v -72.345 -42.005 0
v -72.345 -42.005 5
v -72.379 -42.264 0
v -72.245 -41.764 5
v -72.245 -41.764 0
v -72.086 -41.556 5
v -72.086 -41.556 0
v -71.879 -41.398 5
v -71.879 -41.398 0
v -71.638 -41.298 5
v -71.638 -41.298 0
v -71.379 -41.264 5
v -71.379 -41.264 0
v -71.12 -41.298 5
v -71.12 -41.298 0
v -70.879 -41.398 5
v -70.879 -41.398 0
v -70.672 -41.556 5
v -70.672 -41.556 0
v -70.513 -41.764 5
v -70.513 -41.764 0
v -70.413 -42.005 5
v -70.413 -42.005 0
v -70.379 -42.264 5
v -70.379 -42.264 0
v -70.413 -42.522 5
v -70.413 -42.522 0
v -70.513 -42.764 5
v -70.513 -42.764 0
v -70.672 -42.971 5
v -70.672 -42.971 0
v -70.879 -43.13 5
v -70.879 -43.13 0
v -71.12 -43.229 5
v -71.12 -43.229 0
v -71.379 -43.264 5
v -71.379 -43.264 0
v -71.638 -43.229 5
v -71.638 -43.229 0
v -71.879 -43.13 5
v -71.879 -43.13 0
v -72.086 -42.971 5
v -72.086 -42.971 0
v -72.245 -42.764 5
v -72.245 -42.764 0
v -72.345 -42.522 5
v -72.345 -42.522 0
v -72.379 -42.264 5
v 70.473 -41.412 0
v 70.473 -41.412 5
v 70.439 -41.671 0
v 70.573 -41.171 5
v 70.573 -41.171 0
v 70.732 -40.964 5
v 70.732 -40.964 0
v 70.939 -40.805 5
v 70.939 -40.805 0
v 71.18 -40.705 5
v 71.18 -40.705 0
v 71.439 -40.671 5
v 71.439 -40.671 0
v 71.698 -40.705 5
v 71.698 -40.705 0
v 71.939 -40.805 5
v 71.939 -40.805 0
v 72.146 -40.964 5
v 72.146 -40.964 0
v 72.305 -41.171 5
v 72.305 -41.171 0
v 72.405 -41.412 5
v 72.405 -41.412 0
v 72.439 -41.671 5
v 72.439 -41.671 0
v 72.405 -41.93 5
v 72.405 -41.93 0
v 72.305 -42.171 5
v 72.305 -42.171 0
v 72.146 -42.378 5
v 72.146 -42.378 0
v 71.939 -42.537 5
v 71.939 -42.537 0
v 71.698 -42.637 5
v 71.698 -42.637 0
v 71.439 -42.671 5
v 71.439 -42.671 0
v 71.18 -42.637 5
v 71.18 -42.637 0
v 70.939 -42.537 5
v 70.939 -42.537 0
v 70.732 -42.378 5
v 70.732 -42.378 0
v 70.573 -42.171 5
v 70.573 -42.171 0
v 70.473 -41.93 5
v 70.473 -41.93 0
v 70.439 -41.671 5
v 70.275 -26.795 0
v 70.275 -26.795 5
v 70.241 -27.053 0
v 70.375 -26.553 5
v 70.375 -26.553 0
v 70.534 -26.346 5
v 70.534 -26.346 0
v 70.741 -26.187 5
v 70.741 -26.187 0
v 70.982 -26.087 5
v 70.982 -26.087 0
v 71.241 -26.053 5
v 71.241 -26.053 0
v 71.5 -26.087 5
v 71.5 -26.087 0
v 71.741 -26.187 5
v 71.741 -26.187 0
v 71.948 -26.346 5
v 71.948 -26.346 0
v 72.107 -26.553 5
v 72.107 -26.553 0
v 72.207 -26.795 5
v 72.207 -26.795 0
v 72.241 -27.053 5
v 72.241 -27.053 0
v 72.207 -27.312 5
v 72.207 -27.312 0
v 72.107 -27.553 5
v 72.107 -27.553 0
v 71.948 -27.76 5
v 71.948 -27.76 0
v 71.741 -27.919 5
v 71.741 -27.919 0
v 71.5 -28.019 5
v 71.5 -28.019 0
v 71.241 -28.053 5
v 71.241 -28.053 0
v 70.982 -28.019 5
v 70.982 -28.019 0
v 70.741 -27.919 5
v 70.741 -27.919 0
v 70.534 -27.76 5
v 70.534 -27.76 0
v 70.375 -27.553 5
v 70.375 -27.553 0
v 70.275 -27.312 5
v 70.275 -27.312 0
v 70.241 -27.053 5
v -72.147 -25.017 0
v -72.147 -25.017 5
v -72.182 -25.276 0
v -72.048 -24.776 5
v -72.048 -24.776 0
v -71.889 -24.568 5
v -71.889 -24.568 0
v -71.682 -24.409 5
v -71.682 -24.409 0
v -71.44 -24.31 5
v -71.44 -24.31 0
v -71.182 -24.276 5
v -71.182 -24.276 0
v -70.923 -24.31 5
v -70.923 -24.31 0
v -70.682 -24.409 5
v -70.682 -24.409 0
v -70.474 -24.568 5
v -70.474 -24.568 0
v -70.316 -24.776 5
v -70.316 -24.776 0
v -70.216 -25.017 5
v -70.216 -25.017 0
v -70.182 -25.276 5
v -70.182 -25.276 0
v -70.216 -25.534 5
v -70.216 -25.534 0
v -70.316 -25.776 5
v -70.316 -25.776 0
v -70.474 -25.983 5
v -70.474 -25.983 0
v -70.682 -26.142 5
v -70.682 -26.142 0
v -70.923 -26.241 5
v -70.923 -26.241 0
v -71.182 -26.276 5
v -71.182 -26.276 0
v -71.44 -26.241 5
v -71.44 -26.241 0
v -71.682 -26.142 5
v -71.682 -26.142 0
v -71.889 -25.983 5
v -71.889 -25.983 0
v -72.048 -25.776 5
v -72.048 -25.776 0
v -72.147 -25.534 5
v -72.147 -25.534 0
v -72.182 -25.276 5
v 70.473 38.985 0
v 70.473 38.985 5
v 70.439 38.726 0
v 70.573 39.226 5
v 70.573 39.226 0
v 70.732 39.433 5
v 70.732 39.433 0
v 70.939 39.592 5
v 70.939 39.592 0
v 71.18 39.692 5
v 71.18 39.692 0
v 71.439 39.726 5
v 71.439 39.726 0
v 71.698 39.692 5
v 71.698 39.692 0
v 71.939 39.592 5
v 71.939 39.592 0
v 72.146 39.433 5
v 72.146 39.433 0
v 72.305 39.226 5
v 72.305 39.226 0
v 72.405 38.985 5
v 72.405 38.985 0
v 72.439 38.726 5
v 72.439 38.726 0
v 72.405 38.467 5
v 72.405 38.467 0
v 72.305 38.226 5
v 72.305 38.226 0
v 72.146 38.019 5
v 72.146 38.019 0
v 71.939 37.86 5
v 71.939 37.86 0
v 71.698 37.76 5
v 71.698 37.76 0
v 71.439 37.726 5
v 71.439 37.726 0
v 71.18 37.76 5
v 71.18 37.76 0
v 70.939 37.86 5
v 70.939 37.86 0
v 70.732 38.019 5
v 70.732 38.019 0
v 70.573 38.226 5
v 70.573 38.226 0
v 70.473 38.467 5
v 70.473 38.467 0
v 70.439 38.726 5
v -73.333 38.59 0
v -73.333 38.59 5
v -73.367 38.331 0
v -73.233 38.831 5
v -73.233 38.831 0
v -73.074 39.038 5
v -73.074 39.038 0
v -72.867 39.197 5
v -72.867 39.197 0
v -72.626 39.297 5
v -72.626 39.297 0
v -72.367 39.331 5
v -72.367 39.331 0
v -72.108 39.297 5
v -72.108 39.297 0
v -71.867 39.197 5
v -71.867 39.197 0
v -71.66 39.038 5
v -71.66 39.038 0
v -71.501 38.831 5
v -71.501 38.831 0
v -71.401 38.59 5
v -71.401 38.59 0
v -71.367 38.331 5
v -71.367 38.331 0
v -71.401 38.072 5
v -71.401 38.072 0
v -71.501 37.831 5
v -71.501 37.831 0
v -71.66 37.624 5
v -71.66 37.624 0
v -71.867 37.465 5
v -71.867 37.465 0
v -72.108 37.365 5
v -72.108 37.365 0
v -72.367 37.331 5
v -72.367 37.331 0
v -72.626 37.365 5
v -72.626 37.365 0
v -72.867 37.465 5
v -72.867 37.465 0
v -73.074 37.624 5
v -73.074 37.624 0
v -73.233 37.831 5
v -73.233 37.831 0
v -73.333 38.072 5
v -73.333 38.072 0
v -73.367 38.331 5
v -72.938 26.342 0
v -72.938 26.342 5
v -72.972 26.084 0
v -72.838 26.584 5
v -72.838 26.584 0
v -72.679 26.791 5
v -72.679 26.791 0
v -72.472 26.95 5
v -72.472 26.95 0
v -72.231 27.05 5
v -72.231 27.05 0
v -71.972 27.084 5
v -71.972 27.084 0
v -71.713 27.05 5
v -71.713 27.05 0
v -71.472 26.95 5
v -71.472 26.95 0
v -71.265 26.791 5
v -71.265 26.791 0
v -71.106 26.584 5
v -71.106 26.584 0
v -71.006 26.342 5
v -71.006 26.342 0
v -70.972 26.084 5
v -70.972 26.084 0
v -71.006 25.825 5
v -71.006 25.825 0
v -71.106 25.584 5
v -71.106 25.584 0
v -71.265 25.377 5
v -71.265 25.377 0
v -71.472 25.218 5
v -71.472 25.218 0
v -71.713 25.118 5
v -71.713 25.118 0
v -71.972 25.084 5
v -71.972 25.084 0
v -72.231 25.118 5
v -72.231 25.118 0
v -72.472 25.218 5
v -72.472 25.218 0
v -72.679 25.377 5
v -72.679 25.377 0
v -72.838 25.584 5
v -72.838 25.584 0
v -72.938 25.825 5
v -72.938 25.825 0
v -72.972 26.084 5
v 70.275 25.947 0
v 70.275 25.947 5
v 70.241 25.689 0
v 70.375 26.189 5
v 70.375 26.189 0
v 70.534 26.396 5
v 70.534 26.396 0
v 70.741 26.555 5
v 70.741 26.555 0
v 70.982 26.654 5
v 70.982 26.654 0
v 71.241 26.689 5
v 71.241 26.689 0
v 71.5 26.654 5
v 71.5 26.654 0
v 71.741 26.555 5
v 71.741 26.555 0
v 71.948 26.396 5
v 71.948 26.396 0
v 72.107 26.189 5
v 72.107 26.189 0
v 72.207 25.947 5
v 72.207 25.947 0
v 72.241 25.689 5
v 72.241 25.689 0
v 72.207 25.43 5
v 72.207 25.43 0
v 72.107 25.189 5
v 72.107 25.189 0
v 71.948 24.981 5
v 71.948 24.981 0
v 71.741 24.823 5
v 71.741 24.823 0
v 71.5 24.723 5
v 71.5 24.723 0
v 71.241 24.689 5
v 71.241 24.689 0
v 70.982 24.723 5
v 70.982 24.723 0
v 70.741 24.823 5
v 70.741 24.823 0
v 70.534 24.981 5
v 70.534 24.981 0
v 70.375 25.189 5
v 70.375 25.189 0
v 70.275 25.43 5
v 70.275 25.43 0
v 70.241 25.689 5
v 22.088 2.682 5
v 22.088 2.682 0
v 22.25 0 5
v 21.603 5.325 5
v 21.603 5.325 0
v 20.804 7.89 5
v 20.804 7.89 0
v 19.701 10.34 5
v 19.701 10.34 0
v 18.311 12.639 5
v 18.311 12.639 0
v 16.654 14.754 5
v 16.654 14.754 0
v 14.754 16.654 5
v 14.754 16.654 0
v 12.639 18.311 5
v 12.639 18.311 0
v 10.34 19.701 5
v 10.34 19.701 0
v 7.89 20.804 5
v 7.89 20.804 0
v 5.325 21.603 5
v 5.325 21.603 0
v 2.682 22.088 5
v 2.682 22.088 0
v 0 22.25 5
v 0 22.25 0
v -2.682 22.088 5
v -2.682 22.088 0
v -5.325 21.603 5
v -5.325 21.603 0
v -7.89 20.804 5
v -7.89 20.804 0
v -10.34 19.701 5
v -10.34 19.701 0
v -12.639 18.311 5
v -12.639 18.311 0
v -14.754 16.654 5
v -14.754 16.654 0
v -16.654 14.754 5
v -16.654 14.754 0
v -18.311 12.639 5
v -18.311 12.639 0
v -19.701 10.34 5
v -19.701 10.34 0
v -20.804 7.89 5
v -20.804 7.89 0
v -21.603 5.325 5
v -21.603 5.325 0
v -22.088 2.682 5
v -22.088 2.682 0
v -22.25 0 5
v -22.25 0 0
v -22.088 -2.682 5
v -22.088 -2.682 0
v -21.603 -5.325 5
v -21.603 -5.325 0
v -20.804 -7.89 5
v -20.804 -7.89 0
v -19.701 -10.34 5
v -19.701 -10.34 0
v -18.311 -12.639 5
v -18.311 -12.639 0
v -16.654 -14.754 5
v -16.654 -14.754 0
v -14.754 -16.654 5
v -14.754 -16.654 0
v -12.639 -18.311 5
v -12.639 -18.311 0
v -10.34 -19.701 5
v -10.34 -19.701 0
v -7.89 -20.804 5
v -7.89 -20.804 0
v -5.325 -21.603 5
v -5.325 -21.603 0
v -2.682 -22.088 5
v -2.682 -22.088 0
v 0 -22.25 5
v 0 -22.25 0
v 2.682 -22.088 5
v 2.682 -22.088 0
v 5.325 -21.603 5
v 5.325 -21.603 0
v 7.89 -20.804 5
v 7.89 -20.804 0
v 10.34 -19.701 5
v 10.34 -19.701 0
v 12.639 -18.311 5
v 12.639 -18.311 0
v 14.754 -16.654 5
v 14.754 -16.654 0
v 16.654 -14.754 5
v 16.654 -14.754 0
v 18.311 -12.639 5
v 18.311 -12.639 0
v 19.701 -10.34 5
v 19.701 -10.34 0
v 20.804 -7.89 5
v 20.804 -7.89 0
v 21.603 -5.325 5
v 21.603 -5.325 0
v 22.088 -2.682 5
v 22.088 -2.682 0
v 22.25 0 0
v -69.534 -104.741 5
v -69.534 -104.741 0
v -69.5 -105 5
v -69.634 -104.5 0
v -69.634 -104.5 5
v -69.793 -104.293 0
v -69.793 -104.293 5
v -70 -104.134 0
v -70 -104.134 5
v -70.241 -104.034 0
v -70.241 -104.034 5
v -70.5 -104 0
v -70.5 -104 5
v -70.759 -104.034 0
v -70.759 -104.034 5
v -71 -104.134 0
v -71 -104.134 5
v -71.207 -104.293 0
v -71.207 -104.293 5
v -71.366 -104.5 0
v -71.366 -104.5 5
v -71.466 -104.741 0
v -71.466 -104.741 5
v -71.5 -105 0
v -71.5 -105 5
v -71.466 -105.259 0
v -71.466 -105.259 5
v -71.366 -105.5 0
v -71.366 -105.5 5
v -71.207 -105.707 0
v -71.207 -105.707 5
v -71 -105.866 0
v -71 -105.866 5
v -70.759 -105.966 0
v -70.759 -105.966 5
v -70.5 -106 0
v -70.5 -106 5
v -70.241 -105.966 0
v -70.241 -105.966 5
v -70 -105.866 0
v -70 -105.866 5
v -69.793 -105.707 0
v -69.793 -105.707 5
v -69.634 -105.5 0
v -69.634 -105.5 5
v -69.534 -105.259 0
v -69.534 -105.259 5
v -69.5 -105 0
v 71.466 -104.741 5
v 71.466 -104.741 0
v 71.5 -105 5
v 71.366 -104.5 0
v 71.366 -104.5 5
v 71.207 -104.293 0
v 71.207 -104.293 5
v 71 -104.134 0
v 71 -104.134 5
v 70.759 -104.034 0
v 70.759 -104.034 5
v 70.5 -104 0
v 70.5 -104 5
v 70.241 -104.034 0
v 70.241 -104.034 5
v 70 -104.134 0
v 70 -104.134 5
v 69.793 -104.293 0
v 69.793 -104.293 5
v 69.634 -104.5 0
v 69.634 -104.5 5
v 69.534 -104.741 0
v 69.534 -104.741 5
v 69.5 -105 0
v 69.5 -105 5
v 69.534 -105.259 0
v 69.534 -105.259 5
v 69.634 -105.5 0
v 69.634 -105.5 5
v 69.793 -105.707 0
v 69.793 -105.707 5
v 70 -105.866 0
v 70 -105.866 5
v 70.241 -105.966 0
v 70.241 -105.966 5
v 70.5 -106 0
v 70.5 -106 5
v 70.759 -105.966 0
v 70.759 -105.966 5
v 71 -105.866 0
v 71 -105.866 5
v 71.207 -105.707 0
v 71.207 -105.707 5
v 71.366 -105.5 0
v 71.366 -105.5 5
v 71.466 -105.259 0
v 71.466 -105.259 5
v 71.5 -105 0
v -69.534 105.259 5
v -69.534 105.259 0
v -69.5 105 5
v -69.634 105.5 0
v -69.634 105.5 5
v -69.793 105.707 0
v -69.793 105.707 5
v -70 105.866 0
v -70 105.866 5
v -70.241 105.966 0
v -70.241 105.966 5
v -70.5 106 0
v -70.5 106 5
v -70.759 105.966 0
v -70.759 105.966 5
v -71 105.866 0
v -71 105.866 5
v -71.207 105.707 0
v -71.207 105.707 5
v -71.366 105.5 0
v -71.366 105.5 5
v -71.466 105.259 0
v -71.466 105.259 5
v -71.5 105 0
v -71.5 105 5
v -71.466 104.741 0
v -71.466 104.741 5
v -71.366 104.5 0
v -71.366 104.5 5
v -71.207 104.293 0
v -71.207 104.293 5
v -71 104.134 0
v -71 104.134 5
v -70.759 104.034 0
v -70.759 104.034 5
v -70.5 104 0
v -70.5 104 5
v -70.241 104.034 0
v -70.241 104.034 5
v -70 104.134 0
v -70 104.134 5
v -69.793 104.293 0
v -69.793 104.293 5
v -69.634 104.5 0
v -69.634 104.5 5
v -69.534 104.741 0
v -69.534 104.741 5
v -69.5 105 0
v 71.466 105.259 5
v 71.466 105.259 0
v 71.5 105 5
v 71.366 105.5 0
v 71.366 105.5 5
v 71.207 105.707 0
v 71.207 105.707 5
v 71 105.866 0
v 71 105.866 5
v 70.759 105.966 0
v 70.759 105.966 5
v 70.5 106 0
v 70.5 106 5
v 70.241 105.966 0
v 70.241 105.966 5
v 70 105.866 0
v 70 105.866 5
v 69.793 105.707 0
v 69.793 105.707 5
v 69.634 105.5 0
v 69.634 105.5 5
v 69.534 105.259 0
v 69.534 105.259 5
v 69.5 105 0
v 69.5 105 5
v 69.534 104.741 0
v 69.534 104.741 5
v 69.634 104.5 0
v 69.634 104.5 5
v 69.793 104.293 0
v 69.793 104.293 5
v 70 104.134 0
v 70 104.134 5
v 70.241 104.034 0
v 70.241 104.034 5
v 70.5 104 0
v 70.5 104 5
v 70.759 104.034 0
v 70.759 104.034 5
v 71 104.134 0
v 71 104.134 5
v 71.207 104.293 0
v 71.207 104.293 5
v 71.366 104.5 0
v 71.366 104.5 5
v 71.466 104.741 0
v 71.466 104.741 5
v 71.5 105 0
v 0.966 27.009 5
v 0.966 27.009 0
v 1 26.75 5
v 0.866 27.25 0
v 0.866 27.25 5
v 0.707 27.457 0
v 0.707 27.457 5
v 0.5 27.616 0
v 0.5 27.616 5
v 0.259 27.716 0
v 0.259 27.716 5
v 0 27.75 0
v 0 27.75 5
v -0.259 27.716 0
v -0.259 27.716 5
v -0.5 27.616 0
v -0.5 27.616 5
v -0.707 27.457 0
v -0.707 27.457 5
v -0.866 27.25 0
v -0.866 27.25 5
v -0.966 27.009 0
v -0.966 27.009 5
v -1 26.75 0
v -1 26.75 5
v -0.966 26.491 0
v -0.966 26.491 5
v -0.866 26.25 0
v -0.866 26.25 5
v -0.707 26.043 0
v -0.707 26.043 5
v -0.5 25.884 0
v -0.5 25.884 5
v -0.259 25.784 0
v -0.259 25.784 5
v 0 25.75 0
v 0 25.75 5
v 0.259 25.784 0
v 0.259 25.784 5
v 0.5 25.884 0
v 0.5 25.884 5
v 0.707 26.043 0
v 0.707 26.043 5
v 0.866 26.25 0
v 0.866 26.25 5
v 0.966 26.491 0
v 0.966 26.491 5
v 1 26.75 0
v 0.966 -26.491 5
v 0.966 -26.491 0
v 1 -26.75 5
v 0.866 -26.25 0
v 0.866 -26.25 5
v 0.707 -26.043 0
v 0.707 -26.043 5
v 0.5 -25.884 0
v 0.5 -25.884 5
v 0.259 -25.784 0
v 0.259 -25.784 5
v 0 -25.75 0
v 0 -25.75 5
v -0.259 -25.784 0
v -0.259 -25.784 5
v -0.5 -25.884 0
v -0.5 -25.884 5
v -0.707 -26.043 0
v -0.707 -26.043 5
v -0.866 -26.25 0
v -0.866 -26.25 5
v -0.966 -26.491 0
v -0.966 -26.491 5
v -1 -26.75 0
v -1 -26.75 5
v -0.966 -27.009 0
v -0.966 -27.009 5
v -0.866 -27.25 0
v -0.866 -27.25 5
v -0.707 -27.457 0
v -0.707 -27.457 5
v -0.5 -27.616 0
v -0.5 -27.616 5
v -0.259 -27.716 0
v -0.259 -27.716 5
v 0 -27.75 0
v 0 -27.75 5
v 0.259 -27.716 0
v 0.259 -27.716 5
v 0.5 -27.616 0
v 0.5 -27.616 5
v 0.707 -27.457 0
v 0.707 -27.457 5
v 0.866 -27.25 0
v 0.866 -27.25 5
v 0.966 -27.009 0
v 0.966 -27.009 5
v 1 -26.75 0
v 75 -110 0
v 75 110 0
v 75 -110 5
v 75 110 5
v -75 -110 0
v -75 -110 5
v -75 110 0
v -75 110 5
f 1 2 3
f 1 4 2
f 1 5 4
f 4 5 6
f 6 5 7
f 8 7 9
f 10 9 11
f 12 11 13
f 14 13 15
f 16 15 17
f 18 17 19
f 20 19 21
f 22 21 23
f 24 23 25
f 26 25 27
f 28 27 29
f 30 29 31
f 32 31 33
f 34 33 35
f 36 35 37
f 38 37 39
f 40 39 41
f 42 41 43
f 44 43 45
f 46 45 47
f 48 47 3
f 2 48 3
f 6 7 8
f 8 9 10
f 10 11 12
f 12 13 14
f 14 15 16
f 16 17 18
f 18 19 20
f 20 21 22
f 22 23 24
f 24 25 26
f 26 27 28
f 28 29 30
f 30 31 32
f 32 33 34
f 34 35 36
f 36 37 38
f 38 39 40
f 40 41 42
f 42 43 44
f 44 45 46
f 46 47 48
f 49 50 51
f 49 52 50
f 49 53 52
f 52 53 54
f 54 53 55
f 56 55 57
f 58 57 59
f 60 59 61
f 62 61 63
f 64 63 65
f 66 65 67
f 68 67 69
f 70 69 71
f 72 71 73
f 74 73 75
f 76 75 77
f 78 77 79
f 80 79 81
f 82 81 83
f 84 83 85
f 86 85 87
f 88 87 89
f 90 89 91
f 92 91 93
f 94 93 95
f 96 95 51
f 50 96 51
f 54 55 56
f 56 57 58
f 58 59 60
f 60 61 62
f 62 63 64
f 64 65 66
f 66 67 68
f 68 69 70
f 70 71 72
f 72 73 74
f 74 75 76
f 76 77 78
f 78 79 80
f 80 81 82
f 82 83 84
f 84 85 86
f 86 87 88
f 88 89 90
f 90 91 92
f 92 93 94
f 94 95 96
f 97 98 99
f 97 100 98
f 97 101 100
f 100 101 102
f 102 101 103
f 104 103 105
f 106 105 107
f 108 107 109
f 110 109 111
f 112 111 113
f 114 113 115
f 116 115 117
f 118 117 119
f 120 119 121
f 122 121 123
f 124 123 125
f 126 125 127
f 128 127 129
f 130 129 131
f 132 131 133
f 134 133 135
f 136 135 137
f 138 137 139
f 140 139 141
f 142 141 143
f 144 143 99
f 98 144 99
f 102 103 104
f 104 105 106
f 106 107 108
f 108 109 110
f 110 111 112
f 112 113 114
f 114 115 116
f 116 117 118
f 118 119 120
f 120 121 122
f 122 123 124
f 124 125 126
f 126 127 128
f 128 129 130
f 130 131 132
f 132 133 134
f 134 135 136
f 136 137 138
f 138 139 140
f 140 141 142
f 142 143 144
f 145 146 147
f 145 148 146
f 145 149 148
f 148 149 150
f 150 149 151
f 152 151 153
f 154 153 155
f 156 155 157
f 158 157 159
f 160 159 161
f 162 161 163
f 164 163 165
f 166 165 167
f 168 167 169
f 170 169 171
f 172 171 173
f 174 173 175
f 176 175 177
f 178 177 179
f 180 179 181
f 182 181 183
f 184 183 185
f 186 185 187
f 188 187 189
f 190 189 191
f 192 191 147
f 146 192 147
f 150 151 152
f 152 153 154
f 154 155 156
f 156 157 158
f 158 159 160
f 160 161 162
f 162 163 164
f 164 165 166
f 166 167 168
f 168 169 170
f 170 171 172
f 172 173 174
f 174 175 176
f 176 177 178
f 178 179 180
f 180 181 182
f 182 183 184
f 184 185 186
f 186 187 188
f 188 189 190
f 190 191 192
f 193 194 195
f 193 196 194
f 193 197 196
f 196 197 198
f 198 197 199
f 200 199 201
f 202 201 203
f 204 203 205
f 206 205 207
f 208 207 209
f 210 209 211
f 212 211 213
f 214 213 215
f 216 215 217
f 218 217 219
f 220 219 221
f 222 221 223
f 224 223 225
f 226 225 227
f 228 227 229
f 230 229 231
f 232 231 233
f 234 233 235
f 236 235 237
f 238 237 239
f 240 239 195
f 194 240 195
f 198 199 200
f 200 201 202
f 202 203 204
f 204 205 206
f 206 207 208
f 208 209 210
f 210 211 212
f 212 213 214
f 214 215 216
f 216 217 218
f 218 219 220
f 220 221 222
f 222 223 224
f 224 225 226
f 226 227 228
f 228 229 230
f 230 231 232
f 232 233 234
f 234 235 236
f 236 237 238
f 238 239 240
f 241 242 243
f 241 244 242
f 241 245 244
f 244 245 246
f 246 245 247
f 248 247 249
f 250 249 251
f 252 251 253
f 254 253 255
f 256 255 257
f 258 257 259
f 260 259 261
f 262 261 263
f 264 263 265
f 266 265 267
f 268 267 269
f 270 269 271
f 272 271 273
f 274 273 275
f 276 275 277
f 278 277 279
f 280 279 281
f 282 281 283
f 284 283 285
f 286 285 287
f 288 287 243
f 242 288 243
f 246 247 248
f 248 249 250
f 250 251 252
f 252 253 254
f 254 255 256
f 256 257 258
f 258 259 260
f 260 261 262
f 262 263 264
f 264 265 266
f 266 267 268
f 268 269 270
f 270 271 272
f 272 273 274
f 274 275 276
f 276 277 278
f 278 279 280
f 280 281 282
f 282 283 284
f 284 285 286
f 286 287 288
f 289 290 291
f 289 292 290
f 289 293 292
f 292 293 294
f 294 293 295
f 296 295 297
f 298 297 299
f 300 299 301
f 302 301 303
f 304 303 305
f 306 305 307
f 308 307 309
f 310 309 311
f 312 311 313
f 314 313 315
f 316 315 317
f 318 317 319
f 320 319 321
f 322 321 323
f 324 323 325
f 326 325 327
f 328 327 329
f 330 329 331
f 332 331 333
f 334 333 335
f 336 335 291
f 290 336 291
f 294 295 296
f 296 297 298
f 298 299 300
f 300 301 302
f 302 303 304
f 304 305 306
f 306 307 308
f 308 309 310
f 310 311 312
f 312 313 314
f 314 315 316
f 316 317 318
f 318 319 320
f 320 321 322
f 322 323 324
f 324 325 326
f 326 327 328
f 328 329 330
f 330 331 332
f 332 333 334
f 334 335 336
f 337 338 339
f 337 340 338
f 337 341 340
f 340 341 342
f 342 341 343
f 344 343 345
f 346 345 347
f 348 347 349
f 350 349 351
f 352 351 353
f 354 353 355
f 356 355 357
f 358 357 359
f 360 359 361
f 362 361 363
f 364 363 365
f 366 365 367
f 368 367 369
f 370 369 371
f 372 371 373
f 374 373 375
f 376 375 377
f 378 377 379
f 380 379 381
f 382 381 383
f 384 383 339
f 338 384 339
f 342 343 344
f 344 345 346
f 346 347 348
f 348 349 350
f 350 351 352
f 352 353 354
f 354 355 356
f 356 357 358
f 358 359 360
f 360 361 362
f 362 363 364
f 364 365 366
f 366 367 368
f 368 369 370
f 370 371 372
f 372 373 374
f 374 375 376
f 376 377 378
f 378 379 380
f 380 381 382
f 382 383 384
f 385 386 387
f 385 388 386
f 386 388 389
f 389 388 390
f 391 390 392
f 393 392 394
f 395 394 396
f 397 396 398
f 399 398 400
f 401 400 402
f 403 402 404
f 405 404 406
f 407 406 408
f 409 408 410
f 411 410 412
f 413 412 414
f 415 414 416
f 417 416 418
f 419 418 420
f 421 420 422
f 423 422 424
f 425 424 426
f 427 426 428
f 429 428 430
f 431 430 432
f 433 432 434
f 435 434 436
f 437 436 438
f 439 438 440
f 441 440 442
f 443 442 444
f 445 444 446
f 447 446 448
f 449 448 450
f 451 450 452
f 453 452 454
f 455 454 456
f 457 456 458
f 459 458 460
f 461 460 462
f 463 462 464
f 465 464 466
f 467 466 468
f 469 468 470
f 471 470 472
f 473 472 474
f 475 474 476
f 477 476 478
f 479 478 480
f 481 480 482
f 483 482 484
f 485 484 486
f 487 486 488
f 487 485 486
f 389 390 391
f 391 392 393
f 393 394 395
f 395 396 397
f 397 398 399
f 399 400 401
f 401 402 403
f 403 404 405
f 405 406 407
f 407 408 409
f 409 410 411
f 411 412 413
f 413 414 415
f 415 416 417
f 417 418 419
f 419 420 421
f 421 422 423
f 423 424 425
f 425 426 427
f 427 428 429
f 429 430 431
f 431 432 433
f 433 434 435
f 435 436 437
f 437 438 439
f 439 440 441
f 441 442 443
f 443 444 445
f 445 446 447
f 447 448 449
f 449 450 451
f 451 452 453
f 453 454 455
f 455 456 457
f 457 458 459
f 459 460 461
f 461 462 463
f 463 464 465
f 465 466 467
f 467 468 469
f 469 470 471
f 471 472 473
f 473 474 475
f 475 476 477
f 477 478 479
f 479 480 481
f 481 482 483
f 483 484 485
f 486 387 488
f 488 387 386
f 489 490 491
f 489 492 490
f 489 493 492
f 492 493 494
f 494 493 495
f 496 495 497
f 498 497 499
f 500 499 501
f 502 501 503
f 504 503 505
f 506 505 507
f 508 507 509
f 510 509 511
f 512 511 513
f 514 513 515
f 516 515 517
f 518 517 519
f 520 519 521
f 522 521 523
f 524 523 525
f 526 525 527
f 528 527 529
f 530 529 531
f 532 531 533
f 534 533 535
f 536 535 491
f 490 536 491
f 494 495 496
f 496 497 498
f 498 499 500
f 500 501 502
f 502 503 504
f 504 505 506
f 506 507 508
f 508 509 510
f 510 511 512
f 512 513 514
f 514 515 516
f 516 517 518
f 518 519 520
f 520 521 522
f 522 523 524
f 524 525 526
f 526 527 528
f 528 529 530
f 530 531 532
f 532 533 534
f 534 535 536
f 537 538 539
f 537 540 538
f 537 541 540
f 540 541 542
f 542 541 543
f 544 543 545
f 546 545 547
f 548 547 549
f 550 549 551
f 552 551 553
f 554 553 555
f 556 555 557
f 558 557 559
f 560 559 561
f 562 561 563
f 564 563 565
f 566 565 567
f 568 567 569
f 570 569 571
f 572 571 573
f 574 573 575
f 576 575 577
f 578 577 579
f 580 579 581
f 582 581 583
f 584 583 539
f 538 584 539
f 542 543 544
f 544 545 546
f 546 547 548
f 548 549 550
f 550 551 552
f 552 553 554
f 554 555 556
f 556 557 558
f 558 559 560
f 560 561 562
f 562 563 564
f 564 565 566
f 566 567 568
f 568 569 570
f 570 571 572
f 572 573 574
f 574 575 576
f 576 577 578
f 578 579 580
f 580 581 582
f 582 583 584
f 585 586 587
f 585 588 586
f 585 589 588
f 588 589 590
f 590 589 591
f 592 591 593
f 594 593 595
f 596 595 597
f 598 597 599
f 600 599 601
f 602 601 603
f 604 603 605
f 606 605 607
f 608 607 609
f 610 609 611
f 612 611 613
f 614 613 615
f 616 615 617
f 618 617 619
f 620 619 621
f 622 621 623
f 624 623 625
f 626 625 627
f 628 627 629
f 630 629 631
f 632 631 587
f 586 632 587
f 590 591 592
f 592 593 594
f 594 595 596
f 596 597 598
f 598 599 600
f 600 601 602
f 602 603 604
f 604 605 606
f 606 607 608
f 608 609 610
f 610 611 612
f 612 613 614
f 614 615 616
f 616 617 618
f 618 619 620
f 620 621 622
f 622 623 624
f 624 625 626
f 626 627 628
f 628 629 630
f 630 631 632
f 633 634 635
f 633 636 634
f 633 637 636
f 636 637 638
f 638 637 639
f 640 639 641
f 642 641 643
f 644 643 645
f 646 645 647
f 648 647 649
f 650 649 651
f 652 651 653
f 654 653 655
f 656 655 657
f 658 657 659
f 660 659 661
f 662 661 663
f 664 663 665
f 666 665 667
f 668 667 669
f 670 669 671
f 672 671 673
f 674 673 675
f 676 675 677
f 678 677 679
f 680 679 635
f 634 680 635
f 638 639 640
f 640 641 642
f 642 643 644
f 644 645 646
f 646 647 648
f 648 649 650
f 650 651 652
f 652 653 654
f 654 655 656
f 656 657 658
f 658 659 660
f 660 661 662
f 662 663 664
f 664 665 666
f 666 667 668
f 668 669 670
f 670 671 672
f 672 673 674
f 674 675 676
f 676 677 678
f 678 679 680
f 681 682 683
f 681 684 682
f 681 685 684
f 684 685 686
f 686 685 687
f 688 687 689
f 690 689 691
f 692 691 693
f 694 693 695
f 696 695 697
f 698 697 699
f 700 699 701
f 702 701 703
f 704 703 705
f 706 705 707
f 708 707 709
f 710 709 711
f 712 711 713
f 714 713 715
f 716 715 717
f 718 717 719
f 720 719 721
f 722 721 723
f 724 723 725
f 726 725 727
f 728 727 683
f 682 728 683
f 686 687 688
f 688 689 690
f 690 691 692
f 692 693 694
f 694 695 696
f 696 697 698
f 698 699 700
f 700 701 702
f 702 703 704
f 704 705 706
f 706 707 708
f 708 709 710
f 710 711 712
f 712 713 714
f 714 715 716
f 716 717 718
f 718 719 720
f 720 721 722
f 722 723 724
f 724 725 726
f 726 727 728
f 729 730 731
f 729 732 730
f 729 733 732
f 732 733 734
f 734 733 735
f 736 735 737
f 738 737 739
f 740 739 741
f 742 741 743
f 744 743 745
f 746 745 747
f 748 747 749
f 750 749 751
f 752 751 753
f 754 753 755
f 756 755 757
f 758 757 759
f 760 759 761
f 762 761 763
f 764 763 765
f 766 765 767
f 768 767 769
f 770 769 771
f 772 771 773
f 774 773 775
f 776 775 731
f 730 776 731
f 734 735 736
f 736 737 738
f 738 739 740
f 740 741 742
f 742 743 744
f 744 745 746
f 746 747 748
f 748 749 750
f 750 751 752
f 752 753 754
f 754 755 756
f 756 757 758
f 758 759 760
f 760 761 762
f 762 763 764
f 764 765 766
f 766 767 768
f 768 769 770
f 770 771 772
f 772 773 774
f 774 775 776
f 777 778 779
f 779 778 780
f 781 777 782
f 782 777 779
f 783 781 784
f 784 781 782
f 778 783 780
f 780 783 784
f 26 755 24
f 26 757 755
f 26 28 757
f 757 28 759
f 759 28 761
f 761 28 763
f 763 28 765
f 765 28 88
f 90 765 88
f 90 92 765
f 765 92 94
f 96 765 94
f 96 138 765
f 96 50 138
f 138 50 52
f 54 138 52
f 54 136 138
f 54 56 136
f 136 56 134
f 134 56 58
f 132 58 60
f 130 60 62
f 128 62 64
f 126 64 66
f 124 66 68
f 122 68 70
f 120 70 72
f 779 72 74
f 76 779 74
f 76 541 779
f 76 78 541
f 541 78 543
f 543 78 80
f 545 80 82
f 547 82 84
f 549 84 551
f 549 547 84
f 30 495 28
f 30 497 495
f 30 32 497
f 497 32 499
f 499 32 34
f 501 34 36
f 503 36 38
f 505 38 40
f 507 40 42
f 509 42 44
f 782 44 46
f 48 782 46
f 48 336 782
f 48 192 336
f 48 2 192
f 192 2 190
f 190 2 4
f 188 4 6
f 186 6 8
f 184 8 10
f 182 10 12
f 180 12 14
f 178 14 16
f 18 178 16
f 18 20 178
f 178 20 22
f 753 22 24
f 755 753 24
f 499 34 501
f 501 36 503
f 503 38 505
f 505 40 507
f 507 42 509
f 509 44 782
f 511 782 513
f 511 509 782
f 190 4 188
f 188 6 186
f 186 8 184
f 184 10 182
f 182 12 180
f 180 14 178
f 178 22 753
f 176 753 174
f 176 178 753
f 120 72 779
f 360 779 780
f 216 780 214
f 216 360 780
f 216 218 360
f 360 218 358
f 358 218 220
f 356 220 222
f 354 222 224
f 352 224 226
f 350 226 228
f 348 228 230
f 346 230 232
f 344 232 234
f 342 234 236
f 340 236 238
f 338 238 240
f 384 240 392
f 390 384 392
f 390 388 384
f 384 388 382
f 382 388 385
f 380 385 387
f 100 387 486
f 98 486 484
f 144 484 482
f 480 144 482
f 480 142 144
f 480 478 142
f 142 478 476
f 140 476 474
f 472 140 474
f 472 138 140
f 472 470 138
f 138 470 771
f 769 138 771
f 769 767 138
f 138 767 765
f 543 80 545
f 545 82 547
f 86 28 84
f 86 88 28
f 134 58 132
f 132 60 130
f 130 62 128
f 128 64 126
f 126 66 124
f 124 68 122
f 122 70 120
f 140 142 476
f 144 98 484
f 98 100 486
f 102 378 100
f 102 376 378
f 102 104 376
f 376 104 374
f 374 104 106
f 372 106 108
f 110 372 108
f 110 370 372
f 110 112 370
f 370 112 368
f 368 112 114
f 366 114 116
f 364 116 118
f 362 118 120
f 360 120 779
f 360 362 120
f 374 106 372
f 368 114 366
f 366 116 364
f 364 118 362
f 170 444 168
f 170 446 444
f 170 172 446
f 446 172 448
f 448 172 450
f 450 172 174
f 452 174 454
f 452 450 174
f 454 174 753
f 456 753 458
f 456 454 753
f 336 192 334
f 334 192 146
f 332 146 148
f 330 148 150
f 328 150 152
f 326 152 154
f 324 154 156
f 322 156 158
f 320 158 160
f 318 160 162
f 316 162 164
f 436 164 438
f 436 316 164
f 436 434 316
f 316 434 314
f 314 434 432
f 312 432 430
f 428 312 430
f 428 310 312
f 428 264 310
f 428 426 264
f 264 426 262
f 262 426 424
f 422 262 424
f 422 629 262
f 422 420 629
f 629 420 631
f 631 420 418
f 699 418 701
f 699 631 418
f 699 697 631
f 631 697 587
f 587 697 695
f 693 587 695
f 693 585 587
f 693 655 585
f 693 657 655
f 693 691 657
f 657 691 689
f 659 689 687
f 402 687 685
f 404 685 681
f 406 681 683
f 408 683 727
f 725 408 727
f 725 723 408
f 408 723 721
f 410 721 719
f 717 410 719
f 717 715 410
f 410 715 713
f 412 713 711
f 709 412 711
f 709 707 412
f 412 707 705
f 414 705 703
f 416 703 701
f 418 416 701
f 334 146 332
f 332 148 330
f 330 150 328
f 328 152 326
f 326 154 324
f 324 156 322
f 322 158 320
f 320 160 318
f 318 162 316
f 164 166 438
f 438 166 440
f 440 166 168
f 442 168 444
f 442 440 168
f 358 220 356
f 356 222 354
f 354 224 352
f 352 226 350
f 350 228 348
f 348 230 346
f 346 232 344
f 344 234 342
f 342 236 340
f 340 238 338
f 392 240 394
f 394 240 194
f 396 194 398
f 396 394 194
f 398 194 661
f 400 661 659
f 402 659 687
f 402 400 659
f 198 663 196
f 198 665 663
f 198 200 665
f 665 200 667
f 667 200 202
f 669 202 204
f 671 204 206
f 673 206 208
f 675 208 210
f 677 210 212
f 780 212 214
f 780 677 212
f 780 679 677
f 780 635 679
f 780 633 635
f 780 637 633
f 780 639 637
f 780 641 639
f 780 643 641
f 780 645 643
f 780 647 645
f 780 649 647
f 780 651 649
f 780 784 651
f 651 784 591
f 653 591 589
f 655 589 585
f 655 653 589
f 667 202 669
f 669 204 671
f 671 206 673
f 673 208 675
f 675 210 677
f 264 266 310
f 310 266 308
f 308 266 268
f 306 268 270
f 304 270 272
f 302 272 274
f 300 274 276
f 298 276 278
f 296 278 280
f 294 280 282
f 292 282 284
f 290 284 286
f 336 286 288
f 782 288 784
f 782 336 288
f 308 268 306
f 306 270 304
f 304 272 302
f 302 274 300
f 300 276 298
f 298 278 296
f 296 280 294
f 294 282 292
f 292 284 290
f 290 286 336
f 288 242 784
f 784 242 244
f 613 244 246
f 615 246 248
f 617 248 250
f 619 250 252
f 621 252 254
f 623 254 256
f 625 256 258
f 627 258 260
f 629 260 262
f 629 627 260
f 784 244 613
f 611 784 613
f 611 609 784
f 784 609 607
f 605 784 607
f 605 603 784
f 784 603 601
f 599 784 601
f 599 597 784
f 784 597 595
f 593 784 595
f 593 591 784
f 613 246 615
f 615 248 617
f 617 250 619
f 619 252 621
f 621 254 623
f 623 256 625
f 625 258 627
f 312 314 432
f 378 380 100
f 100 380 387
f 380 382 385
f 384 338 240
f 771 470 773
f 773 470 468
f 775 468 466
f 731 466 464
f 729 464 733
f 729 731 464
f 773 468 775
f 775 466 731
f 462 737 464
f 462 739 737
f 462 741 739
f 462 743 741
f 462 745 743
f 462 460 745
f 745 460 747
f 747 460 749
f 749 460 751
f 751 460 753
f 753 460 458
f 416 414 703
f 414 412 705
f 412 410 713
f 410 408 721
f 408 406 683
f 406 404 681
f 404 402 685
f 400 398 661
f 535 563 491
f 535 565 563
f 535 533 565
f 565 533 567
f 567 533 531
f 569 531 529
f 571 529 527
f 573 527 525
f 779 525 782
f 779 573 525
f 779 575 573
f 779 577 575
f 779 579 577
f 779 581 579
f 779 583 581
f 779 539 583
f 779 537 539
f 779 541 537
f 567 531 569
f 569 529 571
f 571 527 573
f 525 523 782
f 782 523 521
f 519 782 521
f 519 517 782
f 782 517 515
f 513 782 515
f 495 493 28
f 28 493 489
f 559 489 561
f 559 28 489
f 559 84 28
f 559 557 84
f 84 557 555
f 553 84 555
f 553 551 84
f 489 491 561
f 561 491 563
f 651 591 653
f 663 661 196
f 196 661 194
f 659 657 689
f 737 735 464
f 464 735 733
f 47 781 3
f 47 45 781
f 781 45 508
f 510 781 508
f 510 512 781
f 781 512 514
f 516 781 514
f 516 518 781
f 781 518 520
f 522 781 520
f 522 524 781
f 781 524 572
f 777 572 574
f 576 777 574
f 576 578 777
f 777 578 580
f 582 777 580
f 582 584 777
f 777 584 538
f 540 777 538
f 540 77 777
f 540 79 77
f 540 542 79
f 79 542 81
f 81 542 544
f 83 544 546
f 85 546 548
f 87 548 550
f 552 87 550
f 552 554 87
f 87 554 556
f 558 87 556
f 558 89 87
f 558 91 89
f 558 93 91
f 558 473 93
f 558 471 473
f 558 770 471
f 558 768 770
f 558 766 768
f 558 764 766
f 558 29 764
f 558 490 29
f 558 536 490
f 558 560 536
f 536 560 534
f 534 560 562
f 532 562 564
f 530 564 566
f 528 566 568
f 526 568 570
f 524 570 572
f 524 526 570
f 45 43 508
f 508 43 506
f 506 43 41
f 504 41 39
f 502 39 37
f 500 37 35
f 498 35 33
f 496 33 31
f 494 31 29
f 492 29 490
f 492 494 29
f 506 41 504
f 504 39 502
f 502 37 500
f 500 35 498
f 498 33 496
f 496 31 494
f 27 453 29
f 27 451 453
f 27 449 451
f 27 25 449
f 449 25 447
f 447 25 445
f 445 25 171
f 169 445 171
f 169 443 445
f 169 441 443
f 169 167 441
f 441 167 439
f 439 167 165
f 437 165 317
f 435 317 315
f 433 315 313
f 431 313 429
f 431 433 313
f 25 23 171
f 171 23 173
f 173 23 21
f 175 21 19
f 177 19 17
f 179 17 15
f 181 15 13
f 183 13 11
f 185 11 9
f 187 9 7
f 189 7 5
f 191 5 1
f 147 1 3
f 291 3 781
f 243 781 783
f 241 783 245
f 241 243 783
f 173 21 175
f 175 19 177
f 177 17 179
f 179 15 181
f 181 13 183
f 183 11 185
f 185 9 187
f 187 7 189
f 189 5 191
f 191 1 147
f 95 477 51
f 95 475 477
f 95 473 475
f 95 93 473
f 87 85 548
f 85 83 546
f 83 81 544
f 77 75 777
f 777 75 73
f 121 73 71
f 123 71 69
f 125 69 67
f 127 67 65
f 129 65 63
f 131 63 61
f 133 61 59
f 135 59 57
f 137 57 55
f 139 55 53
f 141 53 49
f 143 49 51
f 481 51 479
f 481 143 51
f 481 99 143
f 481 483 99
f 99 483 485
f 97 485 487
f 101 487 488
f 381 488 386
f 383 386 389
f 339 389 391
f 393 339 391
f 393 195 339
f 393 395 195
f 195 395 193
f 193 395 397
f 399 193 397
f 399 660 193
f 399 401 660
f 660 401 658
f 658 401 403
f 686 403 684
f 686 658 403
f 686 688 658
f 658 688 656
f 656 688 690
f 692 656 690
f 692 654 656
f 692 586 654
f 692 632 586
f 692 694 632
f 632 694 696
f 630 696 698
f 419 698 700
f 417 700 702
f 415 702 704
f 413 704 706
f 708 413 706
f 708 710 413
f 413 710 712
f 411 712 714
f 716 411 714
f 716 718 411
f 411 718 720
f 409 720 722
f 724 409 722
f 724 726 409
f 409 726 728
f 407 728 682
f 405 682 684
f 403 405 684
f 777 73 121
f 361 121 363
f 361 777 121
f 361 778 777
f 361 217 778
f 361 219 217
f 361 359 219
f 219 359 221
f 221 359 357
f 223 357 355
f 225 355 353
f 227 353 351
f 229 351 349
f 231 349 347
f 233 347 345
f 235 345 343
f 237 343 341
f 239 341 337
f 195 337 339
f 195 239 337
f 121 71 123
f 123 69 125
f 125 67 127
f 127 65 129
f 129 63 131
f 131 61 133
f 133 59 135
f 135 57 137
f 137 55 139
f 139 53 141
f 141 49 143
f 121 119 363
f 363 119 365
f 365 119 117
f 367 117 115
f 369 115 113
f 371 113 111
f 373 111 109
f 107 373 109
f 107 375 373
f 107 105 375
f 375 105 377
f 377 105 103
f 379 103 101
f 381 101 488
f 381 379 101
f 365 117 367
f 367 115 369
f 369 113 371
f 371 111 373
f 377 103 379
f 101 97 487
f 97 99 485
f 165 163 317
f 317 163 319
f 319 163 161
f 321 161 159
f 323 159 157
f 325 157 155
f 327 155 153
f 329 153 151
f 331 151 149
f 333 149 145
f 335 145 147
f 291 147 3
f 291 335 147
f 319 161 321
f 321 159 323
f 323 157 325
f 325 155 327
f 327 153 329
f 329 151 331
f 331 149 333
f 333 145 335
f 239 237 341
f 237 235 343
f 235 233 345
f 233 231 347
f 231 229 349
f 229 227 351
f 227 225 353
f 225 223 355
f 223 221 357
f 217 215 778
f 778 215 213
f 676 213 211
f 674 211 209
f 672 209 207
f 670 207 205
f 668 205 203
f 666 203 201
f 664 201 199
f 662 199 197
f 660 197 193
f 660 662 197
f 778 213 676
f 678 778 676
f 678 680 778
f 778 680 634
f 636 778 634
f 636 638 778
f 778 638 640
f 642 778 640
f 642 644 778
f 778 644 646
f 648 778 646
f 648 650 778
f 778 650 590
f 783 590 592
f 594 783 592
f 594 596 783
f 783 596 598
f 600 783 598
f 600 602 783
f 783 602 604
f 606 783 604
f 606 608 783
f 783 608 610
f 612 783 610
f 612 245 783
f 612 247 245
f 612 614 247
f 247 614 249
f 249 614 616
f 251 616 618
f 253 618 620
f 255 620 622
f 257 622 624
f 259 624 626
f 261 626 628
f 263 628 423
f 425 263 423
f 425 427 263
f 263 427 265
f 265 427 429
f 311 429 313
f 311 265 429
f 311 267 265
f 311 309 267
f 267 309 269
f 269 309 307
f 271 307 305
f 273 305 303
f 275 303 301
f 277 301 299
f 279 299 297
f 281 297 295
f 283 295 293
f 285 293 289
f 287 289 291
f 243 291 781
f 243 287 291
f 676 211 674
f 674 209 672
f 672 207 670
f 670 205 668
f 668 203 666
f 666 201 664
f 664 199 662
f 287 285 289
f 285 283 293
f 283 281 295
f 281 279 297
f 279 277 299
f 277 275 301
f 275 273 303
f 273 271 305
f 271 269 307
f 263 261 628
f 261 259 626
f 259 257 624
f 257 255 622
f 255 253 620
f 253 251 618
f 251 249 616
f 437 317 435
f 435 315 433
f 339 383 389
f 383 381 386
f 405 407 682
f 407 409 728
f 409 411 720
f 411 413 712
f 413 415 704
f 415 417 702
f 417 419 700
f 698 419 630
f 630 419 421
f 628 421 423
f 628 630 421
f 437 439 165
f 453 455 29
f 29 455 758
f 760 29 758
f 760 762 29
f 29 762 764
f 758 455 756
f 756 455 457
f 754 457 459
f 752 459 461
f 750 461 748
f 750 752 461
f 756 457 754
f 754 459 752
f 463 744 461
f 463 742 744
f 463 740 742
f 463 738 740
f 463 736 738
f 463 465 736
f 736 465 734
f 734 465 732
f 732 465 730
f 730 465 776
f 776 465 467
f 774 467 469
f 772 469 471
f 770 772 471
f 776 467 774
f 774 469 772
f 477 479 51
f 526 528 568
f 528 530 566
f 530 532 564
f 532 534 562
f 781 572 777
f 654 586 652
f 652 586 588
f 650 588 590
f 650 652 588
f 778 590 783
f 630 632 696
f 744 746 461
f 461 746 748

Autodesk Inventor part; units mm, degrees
ref_plane "YZ Plane" through (0, 0, 0) normal (1, 0, 0) x (0, 1, 0)
ref_plane "XZ Plane" through (0, 0, 0) normal (0, 1, 0) x (-1, 0, 0)
ref_plane "XY Plane" through (0, 0, 0) normal (0, 0, 1) x (1, 0, 0)
sketch "Sketch1" plane through (0, 0, 0) normal (0, 0, 1) x (1, 0, 0)
  line L0 (75, 110) -> (-75, 110)
  line L1 (-75, 110) -> (-75, -110)
  line L2 (-75, -110) -> (75, -110)
  line L3 (75, -110) -> (75, 110)
  circle A0 centre (0, 0) radius 22.25
  circle A1 centre (0, -26.75) radius 1
  circle A2 centre (0, 26.75) radius 1
  circle A3 centre (108.4721, 5.5003) radius 1.5
  circle A4 centre (70.5, 105) radius 1
  circle A5 centre (-70.5, 105) radius 1
  circle A6 centre (70.5, -105) radius 1
  circle A7 centre (-70.5, -105) radius 1
  dimension "d0" = 150
  dimension "d1" = 220
  dimension "d2" = 44.5
  dimension "d3" = 2
  dimension "d4" = 2
  dimension "d5" = 3
  dimension "d6" = 2
  dimension "d7" = 2
  dimension "d8" = 2
  dimension "d9" = 2
extrude "Extrusion1" add sketch "Sketch1" along normal blind 5 contours L3 L2 L1 L0
sketch "Sketch2" plane through (0, 0, 5) normal (0, 0, 1) x (1, 0, 0)
  line L0 (-34.154, 91.1798) -> (34.154, 91.1798) construction
  line L1 (34.154, 91.1798) -> (34.154, 70.4938) construction
  line L2 (34.154, 70.4938) -> (-34.154, 70.4938) construction
  line L3 (-34.154, 70.4938) -> (-34.154, 91.1798) construction
  point P0 (0, 0)
hole "Hole1" at (71.2413, 25.6886, 5) direction (0, 0, -1) diameter 2 end through all
hole "Hole2" at (-71.9717, 26.0836, 5) direction (0, 0, -1) diameter 2 end through all
hole "Hole3" at (-72.3668, 38.3308, 5) direction (0, 0, -1) diameter 2 end through all
hole "Hole4" at (71.4388, 38.7259, 5) direction (0, 0, -1) diameter 2 end through all
hole "Hole5" at (-71.1816, -25.2755, 5) direction (0, 0, -1) diameter 2 end through all
hole "Hole6" at (71.2413, -27.0533, 5) direction (0, 0, -1) diameter 2 end through all
hole "Hole7" at (71.4388, -41.6709, 5) direction (0, 0, -1) diameter 2 end through all
hole "Hole8" at (-71.3791, -42.2635, 5) direction (0, 0, -1) diameter 2 end through all
properties part number "FrontplatteII"
